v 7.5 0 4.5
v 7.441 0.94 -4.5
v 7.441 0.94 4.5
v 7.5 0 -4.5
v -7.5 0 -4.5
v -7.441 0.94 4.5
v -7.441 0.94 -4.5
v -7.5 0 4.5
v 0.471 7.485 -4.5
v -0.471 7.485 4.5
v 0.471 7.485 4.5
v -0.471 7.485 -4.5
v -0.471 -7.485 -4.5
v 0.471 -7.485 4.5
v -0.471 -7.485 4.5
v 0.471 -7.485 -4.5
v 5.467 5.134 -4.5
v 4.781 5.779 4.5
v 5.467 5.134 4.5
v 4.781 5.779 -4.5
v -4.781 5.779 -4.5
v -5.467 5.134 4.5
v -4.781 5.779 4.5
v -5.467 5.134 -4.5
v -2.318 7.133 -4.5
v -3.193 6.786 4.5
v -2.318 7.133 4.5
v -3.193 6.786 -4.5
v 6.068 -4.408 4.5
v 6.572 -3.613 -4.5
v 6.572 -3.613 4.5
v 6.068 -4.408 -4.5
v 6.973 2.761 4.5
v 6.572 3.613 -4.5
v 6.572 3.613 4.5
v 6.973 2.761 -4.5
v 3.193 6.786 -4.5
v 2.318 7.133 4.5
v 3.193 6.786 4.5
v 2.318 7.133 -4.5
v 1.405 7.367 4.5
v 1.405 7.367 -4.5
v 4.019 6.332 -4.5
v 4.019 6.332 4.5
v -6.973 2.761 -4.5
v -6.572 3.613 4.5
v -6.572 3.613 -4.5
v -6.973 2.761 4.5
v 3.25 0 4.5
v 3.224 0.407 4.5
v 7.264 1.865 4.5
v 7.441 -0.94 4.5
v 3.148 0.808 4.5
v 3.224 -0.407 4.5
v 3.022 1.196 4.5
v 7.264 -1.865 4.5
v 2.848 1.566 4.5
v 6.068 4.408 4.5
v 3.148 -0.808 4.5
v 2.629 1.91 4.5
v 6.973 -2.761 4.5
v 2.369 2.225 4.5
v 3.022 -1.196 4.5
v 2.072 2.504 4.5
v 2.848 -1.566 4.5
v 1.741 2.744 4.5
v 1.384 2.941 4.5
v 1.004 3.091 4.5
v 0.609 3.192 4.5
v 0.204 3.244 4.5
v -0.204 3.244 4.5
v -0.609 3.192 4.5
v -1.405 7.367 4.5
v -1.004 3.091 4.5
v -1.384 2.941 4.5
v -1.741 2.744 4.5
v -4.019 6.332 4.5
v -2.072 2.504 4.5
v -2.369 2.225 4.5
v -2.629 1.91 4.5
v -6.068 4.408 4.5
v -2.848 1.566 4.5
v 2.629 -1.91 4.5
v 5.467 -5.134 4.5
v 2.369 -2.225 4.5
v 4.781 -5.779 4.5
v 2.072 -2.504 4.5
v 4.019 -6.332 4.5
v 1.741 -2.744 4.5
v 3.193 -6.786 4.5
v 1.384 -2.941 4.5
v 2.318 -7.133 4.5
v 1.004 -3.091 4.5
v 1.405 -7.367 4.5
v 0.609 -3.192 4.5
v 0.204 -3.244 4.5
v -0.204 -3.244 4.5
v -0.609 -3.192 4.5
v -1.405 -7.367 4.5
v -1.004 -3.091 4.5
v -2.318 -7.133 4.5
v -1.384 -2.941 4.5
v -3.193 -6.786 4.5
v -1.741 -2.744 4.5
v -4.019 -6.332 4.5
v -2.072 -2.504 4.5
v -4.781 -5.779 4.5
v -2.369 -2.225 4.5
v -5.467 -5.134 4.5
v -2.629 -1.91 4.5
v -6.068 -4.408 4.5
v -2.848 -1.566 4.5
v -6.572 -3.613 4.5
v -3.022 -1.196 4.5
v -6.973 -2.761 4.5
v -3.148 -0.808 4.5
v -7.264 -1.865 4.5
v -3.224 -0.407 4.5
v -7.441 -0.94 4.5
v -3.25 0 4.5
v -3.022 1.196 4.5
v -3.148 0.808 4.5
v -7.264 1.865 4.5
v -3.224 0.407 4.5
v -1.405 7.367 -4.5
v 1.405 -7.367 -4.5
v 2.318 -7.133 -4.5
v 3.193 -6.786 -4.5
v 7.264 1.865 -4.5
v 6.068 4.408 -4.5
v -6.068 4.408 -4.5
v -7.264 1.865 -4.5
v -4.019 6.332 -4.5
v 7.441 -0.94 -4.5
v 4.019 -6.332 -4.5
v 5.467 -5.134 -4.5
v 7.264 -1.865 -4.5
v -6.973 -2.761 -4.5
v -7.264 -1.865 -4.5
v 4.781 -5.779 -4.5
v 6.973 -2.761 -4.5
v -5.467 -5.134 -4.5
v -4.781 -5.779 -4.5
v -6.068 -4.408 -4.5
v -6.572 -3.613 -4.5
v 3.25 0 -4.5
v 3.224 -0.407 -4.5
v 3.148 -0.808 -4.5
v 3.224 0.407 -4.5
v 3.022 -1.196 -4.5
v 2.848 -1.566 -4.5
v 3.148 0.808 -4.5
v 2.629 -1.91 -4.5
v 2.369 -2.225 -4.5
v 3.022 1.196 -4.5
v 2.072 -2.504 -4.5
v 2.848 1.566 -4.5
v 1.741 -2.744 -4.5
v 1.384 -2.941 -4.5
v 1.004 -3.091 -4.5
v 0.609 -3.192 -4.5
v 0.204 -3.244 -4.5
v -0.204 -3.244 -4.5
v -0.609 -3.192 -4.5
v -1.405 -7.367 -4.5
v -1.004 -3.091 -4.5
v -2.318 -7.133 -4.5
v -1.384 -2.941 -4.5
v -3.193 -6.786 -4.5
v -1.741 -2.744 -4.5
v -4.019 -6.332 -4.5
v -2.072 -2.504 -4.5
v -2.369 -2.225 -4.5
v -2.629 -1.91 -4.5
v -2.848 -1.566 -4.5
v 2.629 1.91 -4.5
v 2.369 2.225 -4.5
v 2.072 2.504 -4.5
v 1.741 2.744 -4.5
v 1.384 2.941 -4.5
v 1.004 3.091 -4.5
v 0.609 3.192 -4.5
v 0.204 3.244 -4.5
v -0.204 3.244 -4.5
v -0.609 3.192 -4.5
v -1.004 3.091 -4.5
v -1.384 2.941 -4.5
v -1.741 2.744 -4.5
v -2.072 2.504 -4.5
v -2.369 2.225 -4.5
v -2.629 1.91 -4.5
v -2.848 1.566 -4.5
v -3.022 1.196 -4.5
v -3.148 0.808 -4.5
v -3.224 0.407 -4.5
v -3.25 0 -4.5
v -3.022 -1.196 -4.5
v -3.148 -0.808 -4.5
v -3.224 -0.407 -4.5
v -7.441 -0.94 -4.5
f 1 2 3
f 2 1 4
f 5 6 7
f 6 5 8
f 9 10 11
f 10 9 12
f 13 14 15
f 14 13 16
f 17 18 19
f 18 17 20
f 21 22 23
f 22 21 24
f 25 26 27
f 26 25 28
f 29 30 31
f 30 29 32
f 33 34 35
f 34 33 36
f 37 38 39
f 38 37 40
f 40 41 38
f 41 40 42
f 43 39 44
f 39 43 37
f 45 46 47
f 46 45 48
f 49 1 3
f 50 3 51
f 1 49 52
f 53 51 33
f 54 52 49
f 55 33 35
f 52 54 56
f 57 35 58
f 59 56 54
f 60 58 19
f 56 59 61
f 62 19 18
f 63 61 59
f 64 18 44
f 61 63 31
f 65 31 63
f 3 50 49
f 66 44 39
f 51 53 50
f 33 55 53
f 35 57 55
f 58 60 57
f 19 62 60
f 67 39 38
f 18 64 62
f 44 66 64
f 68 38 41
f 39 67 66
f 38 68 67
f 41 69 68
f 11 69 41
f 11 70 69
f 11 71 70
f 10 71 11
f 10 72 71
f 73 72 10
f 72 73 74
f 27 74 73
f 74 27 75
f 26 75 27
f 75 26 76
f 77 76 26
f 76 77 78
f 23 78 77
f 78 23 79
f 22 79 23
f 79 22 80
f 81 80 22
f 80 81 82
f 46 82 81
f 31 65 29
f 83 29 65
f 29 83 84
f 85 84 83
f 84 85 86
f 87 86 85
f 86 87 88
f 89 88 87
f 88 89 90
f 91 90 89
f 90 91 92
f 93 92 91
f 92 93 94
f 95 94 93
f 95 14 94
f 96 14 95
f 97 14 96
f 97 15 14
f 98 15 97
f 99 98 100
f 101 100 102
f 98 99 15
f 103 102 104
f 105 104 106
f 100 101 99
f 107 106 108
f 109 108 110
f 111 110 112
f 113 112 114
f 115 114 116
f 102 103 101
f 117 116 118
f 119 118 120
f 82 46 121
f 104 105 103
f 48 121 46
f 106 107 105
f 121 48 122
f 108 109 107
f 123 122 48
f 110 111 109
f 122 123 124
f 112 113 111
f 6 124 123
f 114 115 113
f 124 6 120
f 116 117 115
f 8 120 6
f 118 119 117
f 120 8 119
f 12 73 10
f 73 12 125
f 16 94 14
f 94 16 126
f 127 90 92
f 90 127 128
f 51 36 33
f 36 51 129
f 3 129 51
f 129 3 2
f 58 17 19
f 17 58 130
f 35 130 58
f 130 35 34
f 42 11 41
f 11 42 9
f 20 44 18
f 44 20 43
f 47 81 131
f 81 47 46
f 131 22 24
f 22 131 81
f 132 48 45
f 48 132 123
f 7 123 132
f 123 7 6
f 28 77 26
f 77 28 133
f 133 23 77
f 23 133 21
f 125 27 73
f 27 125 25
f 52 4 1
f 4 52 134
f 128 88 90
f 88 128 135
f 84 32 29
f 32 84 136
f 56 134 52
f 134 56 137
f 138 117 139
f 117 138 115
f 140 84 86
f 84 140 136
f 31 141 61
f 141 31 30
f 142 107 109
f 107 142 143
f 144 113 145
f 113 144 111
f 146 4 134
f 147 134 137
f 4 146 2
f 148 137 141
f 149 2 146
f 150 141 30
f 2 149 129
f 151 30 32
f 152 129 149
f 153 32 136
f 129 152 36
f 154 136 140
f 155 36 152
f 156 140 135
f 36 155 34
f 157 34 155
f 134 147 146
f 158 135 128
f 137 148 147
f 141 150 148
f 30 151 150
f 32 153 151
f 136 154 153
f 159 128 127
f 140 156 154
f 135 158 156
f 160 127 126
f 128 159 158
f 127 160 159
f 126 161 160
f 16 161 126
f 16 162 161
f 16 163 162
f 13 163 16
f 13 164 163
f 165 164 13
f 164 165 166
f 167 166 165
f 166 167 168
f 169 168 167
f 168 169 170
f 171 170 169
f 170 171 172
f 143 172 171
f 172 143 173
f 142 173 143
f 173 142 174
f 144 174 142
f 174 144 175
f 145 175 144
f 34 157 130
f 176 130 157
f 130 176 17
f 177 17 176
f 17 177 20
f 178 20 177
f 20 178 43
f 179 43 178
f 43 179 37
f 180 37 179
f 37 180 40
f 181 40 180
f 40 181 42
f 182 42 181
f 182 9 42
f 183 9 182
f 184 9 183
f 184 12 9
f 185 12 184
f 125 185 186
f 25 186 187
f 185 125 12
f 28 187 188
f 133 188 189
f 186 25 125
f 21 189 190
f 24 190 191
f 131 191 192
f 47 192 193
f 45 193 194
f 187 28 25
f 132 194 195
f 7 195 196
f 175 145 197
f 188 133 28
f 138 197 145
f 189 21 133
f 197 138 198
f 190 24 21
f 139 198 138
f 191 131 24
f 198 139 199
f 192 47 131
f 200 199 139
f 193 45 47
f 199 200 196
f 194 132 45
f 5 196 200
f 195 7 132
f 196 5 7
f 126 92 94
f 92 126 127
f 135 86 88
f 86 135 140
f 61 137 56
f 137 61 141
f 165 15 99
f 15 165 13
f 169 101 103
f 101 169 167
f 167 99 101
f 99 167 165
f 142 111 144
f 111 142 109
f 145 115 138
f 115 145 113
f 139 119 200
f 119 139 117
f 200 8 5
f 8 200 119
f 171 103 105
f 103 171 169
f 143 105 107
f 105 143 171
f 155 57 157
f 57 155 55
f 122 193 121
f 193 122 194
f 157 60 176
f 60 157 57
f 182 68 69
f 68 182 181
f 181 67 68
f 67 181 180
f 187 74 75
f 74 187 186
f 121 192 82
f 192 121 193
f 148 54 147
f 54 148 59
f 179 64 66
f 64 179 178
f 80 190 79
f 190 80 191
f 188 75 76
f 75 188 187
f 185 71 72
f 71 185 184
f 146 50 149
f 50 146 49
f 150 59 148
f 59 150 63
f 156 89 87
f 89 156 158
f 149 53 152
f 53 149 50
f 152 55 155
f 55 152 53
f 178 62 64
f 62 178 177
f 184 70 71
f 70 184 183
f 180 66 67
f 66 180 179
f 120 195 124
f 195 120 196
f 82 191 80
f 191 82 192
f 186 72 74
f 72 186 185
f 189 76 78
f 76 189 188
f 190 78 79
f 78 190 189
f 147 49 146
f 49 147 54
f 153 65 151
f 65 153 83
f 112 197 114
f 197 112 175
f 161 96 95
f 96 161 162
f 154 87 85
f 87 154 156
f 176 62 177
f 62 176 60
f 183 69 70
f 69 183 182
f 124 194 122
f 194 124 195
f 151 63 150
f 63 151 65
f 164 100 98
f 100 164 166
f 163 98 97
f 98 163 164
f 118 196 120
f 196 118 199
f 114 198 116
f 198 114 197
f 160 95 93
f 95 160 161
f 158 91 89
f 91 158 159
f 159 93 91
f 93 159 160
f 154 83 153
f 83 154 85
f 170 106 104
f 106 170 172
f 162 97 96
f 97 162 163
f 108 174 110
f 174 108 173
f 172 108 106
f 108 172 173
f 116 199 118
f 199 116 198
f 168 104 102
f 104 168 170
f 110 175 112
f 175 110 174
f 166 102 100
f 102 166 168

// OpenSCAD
$fn = 50;


difference() {
	union() {
		translate(v = [0, 0, -4.5000000000]) {
			cylinder(h = 9, r = 7.5000000000);
		}
	}
	union() {
		translate(v = [0, 0, -100.0000000000]) {
			cylinder(h = 200, r = 3.2500000000);
		}
	}
}
